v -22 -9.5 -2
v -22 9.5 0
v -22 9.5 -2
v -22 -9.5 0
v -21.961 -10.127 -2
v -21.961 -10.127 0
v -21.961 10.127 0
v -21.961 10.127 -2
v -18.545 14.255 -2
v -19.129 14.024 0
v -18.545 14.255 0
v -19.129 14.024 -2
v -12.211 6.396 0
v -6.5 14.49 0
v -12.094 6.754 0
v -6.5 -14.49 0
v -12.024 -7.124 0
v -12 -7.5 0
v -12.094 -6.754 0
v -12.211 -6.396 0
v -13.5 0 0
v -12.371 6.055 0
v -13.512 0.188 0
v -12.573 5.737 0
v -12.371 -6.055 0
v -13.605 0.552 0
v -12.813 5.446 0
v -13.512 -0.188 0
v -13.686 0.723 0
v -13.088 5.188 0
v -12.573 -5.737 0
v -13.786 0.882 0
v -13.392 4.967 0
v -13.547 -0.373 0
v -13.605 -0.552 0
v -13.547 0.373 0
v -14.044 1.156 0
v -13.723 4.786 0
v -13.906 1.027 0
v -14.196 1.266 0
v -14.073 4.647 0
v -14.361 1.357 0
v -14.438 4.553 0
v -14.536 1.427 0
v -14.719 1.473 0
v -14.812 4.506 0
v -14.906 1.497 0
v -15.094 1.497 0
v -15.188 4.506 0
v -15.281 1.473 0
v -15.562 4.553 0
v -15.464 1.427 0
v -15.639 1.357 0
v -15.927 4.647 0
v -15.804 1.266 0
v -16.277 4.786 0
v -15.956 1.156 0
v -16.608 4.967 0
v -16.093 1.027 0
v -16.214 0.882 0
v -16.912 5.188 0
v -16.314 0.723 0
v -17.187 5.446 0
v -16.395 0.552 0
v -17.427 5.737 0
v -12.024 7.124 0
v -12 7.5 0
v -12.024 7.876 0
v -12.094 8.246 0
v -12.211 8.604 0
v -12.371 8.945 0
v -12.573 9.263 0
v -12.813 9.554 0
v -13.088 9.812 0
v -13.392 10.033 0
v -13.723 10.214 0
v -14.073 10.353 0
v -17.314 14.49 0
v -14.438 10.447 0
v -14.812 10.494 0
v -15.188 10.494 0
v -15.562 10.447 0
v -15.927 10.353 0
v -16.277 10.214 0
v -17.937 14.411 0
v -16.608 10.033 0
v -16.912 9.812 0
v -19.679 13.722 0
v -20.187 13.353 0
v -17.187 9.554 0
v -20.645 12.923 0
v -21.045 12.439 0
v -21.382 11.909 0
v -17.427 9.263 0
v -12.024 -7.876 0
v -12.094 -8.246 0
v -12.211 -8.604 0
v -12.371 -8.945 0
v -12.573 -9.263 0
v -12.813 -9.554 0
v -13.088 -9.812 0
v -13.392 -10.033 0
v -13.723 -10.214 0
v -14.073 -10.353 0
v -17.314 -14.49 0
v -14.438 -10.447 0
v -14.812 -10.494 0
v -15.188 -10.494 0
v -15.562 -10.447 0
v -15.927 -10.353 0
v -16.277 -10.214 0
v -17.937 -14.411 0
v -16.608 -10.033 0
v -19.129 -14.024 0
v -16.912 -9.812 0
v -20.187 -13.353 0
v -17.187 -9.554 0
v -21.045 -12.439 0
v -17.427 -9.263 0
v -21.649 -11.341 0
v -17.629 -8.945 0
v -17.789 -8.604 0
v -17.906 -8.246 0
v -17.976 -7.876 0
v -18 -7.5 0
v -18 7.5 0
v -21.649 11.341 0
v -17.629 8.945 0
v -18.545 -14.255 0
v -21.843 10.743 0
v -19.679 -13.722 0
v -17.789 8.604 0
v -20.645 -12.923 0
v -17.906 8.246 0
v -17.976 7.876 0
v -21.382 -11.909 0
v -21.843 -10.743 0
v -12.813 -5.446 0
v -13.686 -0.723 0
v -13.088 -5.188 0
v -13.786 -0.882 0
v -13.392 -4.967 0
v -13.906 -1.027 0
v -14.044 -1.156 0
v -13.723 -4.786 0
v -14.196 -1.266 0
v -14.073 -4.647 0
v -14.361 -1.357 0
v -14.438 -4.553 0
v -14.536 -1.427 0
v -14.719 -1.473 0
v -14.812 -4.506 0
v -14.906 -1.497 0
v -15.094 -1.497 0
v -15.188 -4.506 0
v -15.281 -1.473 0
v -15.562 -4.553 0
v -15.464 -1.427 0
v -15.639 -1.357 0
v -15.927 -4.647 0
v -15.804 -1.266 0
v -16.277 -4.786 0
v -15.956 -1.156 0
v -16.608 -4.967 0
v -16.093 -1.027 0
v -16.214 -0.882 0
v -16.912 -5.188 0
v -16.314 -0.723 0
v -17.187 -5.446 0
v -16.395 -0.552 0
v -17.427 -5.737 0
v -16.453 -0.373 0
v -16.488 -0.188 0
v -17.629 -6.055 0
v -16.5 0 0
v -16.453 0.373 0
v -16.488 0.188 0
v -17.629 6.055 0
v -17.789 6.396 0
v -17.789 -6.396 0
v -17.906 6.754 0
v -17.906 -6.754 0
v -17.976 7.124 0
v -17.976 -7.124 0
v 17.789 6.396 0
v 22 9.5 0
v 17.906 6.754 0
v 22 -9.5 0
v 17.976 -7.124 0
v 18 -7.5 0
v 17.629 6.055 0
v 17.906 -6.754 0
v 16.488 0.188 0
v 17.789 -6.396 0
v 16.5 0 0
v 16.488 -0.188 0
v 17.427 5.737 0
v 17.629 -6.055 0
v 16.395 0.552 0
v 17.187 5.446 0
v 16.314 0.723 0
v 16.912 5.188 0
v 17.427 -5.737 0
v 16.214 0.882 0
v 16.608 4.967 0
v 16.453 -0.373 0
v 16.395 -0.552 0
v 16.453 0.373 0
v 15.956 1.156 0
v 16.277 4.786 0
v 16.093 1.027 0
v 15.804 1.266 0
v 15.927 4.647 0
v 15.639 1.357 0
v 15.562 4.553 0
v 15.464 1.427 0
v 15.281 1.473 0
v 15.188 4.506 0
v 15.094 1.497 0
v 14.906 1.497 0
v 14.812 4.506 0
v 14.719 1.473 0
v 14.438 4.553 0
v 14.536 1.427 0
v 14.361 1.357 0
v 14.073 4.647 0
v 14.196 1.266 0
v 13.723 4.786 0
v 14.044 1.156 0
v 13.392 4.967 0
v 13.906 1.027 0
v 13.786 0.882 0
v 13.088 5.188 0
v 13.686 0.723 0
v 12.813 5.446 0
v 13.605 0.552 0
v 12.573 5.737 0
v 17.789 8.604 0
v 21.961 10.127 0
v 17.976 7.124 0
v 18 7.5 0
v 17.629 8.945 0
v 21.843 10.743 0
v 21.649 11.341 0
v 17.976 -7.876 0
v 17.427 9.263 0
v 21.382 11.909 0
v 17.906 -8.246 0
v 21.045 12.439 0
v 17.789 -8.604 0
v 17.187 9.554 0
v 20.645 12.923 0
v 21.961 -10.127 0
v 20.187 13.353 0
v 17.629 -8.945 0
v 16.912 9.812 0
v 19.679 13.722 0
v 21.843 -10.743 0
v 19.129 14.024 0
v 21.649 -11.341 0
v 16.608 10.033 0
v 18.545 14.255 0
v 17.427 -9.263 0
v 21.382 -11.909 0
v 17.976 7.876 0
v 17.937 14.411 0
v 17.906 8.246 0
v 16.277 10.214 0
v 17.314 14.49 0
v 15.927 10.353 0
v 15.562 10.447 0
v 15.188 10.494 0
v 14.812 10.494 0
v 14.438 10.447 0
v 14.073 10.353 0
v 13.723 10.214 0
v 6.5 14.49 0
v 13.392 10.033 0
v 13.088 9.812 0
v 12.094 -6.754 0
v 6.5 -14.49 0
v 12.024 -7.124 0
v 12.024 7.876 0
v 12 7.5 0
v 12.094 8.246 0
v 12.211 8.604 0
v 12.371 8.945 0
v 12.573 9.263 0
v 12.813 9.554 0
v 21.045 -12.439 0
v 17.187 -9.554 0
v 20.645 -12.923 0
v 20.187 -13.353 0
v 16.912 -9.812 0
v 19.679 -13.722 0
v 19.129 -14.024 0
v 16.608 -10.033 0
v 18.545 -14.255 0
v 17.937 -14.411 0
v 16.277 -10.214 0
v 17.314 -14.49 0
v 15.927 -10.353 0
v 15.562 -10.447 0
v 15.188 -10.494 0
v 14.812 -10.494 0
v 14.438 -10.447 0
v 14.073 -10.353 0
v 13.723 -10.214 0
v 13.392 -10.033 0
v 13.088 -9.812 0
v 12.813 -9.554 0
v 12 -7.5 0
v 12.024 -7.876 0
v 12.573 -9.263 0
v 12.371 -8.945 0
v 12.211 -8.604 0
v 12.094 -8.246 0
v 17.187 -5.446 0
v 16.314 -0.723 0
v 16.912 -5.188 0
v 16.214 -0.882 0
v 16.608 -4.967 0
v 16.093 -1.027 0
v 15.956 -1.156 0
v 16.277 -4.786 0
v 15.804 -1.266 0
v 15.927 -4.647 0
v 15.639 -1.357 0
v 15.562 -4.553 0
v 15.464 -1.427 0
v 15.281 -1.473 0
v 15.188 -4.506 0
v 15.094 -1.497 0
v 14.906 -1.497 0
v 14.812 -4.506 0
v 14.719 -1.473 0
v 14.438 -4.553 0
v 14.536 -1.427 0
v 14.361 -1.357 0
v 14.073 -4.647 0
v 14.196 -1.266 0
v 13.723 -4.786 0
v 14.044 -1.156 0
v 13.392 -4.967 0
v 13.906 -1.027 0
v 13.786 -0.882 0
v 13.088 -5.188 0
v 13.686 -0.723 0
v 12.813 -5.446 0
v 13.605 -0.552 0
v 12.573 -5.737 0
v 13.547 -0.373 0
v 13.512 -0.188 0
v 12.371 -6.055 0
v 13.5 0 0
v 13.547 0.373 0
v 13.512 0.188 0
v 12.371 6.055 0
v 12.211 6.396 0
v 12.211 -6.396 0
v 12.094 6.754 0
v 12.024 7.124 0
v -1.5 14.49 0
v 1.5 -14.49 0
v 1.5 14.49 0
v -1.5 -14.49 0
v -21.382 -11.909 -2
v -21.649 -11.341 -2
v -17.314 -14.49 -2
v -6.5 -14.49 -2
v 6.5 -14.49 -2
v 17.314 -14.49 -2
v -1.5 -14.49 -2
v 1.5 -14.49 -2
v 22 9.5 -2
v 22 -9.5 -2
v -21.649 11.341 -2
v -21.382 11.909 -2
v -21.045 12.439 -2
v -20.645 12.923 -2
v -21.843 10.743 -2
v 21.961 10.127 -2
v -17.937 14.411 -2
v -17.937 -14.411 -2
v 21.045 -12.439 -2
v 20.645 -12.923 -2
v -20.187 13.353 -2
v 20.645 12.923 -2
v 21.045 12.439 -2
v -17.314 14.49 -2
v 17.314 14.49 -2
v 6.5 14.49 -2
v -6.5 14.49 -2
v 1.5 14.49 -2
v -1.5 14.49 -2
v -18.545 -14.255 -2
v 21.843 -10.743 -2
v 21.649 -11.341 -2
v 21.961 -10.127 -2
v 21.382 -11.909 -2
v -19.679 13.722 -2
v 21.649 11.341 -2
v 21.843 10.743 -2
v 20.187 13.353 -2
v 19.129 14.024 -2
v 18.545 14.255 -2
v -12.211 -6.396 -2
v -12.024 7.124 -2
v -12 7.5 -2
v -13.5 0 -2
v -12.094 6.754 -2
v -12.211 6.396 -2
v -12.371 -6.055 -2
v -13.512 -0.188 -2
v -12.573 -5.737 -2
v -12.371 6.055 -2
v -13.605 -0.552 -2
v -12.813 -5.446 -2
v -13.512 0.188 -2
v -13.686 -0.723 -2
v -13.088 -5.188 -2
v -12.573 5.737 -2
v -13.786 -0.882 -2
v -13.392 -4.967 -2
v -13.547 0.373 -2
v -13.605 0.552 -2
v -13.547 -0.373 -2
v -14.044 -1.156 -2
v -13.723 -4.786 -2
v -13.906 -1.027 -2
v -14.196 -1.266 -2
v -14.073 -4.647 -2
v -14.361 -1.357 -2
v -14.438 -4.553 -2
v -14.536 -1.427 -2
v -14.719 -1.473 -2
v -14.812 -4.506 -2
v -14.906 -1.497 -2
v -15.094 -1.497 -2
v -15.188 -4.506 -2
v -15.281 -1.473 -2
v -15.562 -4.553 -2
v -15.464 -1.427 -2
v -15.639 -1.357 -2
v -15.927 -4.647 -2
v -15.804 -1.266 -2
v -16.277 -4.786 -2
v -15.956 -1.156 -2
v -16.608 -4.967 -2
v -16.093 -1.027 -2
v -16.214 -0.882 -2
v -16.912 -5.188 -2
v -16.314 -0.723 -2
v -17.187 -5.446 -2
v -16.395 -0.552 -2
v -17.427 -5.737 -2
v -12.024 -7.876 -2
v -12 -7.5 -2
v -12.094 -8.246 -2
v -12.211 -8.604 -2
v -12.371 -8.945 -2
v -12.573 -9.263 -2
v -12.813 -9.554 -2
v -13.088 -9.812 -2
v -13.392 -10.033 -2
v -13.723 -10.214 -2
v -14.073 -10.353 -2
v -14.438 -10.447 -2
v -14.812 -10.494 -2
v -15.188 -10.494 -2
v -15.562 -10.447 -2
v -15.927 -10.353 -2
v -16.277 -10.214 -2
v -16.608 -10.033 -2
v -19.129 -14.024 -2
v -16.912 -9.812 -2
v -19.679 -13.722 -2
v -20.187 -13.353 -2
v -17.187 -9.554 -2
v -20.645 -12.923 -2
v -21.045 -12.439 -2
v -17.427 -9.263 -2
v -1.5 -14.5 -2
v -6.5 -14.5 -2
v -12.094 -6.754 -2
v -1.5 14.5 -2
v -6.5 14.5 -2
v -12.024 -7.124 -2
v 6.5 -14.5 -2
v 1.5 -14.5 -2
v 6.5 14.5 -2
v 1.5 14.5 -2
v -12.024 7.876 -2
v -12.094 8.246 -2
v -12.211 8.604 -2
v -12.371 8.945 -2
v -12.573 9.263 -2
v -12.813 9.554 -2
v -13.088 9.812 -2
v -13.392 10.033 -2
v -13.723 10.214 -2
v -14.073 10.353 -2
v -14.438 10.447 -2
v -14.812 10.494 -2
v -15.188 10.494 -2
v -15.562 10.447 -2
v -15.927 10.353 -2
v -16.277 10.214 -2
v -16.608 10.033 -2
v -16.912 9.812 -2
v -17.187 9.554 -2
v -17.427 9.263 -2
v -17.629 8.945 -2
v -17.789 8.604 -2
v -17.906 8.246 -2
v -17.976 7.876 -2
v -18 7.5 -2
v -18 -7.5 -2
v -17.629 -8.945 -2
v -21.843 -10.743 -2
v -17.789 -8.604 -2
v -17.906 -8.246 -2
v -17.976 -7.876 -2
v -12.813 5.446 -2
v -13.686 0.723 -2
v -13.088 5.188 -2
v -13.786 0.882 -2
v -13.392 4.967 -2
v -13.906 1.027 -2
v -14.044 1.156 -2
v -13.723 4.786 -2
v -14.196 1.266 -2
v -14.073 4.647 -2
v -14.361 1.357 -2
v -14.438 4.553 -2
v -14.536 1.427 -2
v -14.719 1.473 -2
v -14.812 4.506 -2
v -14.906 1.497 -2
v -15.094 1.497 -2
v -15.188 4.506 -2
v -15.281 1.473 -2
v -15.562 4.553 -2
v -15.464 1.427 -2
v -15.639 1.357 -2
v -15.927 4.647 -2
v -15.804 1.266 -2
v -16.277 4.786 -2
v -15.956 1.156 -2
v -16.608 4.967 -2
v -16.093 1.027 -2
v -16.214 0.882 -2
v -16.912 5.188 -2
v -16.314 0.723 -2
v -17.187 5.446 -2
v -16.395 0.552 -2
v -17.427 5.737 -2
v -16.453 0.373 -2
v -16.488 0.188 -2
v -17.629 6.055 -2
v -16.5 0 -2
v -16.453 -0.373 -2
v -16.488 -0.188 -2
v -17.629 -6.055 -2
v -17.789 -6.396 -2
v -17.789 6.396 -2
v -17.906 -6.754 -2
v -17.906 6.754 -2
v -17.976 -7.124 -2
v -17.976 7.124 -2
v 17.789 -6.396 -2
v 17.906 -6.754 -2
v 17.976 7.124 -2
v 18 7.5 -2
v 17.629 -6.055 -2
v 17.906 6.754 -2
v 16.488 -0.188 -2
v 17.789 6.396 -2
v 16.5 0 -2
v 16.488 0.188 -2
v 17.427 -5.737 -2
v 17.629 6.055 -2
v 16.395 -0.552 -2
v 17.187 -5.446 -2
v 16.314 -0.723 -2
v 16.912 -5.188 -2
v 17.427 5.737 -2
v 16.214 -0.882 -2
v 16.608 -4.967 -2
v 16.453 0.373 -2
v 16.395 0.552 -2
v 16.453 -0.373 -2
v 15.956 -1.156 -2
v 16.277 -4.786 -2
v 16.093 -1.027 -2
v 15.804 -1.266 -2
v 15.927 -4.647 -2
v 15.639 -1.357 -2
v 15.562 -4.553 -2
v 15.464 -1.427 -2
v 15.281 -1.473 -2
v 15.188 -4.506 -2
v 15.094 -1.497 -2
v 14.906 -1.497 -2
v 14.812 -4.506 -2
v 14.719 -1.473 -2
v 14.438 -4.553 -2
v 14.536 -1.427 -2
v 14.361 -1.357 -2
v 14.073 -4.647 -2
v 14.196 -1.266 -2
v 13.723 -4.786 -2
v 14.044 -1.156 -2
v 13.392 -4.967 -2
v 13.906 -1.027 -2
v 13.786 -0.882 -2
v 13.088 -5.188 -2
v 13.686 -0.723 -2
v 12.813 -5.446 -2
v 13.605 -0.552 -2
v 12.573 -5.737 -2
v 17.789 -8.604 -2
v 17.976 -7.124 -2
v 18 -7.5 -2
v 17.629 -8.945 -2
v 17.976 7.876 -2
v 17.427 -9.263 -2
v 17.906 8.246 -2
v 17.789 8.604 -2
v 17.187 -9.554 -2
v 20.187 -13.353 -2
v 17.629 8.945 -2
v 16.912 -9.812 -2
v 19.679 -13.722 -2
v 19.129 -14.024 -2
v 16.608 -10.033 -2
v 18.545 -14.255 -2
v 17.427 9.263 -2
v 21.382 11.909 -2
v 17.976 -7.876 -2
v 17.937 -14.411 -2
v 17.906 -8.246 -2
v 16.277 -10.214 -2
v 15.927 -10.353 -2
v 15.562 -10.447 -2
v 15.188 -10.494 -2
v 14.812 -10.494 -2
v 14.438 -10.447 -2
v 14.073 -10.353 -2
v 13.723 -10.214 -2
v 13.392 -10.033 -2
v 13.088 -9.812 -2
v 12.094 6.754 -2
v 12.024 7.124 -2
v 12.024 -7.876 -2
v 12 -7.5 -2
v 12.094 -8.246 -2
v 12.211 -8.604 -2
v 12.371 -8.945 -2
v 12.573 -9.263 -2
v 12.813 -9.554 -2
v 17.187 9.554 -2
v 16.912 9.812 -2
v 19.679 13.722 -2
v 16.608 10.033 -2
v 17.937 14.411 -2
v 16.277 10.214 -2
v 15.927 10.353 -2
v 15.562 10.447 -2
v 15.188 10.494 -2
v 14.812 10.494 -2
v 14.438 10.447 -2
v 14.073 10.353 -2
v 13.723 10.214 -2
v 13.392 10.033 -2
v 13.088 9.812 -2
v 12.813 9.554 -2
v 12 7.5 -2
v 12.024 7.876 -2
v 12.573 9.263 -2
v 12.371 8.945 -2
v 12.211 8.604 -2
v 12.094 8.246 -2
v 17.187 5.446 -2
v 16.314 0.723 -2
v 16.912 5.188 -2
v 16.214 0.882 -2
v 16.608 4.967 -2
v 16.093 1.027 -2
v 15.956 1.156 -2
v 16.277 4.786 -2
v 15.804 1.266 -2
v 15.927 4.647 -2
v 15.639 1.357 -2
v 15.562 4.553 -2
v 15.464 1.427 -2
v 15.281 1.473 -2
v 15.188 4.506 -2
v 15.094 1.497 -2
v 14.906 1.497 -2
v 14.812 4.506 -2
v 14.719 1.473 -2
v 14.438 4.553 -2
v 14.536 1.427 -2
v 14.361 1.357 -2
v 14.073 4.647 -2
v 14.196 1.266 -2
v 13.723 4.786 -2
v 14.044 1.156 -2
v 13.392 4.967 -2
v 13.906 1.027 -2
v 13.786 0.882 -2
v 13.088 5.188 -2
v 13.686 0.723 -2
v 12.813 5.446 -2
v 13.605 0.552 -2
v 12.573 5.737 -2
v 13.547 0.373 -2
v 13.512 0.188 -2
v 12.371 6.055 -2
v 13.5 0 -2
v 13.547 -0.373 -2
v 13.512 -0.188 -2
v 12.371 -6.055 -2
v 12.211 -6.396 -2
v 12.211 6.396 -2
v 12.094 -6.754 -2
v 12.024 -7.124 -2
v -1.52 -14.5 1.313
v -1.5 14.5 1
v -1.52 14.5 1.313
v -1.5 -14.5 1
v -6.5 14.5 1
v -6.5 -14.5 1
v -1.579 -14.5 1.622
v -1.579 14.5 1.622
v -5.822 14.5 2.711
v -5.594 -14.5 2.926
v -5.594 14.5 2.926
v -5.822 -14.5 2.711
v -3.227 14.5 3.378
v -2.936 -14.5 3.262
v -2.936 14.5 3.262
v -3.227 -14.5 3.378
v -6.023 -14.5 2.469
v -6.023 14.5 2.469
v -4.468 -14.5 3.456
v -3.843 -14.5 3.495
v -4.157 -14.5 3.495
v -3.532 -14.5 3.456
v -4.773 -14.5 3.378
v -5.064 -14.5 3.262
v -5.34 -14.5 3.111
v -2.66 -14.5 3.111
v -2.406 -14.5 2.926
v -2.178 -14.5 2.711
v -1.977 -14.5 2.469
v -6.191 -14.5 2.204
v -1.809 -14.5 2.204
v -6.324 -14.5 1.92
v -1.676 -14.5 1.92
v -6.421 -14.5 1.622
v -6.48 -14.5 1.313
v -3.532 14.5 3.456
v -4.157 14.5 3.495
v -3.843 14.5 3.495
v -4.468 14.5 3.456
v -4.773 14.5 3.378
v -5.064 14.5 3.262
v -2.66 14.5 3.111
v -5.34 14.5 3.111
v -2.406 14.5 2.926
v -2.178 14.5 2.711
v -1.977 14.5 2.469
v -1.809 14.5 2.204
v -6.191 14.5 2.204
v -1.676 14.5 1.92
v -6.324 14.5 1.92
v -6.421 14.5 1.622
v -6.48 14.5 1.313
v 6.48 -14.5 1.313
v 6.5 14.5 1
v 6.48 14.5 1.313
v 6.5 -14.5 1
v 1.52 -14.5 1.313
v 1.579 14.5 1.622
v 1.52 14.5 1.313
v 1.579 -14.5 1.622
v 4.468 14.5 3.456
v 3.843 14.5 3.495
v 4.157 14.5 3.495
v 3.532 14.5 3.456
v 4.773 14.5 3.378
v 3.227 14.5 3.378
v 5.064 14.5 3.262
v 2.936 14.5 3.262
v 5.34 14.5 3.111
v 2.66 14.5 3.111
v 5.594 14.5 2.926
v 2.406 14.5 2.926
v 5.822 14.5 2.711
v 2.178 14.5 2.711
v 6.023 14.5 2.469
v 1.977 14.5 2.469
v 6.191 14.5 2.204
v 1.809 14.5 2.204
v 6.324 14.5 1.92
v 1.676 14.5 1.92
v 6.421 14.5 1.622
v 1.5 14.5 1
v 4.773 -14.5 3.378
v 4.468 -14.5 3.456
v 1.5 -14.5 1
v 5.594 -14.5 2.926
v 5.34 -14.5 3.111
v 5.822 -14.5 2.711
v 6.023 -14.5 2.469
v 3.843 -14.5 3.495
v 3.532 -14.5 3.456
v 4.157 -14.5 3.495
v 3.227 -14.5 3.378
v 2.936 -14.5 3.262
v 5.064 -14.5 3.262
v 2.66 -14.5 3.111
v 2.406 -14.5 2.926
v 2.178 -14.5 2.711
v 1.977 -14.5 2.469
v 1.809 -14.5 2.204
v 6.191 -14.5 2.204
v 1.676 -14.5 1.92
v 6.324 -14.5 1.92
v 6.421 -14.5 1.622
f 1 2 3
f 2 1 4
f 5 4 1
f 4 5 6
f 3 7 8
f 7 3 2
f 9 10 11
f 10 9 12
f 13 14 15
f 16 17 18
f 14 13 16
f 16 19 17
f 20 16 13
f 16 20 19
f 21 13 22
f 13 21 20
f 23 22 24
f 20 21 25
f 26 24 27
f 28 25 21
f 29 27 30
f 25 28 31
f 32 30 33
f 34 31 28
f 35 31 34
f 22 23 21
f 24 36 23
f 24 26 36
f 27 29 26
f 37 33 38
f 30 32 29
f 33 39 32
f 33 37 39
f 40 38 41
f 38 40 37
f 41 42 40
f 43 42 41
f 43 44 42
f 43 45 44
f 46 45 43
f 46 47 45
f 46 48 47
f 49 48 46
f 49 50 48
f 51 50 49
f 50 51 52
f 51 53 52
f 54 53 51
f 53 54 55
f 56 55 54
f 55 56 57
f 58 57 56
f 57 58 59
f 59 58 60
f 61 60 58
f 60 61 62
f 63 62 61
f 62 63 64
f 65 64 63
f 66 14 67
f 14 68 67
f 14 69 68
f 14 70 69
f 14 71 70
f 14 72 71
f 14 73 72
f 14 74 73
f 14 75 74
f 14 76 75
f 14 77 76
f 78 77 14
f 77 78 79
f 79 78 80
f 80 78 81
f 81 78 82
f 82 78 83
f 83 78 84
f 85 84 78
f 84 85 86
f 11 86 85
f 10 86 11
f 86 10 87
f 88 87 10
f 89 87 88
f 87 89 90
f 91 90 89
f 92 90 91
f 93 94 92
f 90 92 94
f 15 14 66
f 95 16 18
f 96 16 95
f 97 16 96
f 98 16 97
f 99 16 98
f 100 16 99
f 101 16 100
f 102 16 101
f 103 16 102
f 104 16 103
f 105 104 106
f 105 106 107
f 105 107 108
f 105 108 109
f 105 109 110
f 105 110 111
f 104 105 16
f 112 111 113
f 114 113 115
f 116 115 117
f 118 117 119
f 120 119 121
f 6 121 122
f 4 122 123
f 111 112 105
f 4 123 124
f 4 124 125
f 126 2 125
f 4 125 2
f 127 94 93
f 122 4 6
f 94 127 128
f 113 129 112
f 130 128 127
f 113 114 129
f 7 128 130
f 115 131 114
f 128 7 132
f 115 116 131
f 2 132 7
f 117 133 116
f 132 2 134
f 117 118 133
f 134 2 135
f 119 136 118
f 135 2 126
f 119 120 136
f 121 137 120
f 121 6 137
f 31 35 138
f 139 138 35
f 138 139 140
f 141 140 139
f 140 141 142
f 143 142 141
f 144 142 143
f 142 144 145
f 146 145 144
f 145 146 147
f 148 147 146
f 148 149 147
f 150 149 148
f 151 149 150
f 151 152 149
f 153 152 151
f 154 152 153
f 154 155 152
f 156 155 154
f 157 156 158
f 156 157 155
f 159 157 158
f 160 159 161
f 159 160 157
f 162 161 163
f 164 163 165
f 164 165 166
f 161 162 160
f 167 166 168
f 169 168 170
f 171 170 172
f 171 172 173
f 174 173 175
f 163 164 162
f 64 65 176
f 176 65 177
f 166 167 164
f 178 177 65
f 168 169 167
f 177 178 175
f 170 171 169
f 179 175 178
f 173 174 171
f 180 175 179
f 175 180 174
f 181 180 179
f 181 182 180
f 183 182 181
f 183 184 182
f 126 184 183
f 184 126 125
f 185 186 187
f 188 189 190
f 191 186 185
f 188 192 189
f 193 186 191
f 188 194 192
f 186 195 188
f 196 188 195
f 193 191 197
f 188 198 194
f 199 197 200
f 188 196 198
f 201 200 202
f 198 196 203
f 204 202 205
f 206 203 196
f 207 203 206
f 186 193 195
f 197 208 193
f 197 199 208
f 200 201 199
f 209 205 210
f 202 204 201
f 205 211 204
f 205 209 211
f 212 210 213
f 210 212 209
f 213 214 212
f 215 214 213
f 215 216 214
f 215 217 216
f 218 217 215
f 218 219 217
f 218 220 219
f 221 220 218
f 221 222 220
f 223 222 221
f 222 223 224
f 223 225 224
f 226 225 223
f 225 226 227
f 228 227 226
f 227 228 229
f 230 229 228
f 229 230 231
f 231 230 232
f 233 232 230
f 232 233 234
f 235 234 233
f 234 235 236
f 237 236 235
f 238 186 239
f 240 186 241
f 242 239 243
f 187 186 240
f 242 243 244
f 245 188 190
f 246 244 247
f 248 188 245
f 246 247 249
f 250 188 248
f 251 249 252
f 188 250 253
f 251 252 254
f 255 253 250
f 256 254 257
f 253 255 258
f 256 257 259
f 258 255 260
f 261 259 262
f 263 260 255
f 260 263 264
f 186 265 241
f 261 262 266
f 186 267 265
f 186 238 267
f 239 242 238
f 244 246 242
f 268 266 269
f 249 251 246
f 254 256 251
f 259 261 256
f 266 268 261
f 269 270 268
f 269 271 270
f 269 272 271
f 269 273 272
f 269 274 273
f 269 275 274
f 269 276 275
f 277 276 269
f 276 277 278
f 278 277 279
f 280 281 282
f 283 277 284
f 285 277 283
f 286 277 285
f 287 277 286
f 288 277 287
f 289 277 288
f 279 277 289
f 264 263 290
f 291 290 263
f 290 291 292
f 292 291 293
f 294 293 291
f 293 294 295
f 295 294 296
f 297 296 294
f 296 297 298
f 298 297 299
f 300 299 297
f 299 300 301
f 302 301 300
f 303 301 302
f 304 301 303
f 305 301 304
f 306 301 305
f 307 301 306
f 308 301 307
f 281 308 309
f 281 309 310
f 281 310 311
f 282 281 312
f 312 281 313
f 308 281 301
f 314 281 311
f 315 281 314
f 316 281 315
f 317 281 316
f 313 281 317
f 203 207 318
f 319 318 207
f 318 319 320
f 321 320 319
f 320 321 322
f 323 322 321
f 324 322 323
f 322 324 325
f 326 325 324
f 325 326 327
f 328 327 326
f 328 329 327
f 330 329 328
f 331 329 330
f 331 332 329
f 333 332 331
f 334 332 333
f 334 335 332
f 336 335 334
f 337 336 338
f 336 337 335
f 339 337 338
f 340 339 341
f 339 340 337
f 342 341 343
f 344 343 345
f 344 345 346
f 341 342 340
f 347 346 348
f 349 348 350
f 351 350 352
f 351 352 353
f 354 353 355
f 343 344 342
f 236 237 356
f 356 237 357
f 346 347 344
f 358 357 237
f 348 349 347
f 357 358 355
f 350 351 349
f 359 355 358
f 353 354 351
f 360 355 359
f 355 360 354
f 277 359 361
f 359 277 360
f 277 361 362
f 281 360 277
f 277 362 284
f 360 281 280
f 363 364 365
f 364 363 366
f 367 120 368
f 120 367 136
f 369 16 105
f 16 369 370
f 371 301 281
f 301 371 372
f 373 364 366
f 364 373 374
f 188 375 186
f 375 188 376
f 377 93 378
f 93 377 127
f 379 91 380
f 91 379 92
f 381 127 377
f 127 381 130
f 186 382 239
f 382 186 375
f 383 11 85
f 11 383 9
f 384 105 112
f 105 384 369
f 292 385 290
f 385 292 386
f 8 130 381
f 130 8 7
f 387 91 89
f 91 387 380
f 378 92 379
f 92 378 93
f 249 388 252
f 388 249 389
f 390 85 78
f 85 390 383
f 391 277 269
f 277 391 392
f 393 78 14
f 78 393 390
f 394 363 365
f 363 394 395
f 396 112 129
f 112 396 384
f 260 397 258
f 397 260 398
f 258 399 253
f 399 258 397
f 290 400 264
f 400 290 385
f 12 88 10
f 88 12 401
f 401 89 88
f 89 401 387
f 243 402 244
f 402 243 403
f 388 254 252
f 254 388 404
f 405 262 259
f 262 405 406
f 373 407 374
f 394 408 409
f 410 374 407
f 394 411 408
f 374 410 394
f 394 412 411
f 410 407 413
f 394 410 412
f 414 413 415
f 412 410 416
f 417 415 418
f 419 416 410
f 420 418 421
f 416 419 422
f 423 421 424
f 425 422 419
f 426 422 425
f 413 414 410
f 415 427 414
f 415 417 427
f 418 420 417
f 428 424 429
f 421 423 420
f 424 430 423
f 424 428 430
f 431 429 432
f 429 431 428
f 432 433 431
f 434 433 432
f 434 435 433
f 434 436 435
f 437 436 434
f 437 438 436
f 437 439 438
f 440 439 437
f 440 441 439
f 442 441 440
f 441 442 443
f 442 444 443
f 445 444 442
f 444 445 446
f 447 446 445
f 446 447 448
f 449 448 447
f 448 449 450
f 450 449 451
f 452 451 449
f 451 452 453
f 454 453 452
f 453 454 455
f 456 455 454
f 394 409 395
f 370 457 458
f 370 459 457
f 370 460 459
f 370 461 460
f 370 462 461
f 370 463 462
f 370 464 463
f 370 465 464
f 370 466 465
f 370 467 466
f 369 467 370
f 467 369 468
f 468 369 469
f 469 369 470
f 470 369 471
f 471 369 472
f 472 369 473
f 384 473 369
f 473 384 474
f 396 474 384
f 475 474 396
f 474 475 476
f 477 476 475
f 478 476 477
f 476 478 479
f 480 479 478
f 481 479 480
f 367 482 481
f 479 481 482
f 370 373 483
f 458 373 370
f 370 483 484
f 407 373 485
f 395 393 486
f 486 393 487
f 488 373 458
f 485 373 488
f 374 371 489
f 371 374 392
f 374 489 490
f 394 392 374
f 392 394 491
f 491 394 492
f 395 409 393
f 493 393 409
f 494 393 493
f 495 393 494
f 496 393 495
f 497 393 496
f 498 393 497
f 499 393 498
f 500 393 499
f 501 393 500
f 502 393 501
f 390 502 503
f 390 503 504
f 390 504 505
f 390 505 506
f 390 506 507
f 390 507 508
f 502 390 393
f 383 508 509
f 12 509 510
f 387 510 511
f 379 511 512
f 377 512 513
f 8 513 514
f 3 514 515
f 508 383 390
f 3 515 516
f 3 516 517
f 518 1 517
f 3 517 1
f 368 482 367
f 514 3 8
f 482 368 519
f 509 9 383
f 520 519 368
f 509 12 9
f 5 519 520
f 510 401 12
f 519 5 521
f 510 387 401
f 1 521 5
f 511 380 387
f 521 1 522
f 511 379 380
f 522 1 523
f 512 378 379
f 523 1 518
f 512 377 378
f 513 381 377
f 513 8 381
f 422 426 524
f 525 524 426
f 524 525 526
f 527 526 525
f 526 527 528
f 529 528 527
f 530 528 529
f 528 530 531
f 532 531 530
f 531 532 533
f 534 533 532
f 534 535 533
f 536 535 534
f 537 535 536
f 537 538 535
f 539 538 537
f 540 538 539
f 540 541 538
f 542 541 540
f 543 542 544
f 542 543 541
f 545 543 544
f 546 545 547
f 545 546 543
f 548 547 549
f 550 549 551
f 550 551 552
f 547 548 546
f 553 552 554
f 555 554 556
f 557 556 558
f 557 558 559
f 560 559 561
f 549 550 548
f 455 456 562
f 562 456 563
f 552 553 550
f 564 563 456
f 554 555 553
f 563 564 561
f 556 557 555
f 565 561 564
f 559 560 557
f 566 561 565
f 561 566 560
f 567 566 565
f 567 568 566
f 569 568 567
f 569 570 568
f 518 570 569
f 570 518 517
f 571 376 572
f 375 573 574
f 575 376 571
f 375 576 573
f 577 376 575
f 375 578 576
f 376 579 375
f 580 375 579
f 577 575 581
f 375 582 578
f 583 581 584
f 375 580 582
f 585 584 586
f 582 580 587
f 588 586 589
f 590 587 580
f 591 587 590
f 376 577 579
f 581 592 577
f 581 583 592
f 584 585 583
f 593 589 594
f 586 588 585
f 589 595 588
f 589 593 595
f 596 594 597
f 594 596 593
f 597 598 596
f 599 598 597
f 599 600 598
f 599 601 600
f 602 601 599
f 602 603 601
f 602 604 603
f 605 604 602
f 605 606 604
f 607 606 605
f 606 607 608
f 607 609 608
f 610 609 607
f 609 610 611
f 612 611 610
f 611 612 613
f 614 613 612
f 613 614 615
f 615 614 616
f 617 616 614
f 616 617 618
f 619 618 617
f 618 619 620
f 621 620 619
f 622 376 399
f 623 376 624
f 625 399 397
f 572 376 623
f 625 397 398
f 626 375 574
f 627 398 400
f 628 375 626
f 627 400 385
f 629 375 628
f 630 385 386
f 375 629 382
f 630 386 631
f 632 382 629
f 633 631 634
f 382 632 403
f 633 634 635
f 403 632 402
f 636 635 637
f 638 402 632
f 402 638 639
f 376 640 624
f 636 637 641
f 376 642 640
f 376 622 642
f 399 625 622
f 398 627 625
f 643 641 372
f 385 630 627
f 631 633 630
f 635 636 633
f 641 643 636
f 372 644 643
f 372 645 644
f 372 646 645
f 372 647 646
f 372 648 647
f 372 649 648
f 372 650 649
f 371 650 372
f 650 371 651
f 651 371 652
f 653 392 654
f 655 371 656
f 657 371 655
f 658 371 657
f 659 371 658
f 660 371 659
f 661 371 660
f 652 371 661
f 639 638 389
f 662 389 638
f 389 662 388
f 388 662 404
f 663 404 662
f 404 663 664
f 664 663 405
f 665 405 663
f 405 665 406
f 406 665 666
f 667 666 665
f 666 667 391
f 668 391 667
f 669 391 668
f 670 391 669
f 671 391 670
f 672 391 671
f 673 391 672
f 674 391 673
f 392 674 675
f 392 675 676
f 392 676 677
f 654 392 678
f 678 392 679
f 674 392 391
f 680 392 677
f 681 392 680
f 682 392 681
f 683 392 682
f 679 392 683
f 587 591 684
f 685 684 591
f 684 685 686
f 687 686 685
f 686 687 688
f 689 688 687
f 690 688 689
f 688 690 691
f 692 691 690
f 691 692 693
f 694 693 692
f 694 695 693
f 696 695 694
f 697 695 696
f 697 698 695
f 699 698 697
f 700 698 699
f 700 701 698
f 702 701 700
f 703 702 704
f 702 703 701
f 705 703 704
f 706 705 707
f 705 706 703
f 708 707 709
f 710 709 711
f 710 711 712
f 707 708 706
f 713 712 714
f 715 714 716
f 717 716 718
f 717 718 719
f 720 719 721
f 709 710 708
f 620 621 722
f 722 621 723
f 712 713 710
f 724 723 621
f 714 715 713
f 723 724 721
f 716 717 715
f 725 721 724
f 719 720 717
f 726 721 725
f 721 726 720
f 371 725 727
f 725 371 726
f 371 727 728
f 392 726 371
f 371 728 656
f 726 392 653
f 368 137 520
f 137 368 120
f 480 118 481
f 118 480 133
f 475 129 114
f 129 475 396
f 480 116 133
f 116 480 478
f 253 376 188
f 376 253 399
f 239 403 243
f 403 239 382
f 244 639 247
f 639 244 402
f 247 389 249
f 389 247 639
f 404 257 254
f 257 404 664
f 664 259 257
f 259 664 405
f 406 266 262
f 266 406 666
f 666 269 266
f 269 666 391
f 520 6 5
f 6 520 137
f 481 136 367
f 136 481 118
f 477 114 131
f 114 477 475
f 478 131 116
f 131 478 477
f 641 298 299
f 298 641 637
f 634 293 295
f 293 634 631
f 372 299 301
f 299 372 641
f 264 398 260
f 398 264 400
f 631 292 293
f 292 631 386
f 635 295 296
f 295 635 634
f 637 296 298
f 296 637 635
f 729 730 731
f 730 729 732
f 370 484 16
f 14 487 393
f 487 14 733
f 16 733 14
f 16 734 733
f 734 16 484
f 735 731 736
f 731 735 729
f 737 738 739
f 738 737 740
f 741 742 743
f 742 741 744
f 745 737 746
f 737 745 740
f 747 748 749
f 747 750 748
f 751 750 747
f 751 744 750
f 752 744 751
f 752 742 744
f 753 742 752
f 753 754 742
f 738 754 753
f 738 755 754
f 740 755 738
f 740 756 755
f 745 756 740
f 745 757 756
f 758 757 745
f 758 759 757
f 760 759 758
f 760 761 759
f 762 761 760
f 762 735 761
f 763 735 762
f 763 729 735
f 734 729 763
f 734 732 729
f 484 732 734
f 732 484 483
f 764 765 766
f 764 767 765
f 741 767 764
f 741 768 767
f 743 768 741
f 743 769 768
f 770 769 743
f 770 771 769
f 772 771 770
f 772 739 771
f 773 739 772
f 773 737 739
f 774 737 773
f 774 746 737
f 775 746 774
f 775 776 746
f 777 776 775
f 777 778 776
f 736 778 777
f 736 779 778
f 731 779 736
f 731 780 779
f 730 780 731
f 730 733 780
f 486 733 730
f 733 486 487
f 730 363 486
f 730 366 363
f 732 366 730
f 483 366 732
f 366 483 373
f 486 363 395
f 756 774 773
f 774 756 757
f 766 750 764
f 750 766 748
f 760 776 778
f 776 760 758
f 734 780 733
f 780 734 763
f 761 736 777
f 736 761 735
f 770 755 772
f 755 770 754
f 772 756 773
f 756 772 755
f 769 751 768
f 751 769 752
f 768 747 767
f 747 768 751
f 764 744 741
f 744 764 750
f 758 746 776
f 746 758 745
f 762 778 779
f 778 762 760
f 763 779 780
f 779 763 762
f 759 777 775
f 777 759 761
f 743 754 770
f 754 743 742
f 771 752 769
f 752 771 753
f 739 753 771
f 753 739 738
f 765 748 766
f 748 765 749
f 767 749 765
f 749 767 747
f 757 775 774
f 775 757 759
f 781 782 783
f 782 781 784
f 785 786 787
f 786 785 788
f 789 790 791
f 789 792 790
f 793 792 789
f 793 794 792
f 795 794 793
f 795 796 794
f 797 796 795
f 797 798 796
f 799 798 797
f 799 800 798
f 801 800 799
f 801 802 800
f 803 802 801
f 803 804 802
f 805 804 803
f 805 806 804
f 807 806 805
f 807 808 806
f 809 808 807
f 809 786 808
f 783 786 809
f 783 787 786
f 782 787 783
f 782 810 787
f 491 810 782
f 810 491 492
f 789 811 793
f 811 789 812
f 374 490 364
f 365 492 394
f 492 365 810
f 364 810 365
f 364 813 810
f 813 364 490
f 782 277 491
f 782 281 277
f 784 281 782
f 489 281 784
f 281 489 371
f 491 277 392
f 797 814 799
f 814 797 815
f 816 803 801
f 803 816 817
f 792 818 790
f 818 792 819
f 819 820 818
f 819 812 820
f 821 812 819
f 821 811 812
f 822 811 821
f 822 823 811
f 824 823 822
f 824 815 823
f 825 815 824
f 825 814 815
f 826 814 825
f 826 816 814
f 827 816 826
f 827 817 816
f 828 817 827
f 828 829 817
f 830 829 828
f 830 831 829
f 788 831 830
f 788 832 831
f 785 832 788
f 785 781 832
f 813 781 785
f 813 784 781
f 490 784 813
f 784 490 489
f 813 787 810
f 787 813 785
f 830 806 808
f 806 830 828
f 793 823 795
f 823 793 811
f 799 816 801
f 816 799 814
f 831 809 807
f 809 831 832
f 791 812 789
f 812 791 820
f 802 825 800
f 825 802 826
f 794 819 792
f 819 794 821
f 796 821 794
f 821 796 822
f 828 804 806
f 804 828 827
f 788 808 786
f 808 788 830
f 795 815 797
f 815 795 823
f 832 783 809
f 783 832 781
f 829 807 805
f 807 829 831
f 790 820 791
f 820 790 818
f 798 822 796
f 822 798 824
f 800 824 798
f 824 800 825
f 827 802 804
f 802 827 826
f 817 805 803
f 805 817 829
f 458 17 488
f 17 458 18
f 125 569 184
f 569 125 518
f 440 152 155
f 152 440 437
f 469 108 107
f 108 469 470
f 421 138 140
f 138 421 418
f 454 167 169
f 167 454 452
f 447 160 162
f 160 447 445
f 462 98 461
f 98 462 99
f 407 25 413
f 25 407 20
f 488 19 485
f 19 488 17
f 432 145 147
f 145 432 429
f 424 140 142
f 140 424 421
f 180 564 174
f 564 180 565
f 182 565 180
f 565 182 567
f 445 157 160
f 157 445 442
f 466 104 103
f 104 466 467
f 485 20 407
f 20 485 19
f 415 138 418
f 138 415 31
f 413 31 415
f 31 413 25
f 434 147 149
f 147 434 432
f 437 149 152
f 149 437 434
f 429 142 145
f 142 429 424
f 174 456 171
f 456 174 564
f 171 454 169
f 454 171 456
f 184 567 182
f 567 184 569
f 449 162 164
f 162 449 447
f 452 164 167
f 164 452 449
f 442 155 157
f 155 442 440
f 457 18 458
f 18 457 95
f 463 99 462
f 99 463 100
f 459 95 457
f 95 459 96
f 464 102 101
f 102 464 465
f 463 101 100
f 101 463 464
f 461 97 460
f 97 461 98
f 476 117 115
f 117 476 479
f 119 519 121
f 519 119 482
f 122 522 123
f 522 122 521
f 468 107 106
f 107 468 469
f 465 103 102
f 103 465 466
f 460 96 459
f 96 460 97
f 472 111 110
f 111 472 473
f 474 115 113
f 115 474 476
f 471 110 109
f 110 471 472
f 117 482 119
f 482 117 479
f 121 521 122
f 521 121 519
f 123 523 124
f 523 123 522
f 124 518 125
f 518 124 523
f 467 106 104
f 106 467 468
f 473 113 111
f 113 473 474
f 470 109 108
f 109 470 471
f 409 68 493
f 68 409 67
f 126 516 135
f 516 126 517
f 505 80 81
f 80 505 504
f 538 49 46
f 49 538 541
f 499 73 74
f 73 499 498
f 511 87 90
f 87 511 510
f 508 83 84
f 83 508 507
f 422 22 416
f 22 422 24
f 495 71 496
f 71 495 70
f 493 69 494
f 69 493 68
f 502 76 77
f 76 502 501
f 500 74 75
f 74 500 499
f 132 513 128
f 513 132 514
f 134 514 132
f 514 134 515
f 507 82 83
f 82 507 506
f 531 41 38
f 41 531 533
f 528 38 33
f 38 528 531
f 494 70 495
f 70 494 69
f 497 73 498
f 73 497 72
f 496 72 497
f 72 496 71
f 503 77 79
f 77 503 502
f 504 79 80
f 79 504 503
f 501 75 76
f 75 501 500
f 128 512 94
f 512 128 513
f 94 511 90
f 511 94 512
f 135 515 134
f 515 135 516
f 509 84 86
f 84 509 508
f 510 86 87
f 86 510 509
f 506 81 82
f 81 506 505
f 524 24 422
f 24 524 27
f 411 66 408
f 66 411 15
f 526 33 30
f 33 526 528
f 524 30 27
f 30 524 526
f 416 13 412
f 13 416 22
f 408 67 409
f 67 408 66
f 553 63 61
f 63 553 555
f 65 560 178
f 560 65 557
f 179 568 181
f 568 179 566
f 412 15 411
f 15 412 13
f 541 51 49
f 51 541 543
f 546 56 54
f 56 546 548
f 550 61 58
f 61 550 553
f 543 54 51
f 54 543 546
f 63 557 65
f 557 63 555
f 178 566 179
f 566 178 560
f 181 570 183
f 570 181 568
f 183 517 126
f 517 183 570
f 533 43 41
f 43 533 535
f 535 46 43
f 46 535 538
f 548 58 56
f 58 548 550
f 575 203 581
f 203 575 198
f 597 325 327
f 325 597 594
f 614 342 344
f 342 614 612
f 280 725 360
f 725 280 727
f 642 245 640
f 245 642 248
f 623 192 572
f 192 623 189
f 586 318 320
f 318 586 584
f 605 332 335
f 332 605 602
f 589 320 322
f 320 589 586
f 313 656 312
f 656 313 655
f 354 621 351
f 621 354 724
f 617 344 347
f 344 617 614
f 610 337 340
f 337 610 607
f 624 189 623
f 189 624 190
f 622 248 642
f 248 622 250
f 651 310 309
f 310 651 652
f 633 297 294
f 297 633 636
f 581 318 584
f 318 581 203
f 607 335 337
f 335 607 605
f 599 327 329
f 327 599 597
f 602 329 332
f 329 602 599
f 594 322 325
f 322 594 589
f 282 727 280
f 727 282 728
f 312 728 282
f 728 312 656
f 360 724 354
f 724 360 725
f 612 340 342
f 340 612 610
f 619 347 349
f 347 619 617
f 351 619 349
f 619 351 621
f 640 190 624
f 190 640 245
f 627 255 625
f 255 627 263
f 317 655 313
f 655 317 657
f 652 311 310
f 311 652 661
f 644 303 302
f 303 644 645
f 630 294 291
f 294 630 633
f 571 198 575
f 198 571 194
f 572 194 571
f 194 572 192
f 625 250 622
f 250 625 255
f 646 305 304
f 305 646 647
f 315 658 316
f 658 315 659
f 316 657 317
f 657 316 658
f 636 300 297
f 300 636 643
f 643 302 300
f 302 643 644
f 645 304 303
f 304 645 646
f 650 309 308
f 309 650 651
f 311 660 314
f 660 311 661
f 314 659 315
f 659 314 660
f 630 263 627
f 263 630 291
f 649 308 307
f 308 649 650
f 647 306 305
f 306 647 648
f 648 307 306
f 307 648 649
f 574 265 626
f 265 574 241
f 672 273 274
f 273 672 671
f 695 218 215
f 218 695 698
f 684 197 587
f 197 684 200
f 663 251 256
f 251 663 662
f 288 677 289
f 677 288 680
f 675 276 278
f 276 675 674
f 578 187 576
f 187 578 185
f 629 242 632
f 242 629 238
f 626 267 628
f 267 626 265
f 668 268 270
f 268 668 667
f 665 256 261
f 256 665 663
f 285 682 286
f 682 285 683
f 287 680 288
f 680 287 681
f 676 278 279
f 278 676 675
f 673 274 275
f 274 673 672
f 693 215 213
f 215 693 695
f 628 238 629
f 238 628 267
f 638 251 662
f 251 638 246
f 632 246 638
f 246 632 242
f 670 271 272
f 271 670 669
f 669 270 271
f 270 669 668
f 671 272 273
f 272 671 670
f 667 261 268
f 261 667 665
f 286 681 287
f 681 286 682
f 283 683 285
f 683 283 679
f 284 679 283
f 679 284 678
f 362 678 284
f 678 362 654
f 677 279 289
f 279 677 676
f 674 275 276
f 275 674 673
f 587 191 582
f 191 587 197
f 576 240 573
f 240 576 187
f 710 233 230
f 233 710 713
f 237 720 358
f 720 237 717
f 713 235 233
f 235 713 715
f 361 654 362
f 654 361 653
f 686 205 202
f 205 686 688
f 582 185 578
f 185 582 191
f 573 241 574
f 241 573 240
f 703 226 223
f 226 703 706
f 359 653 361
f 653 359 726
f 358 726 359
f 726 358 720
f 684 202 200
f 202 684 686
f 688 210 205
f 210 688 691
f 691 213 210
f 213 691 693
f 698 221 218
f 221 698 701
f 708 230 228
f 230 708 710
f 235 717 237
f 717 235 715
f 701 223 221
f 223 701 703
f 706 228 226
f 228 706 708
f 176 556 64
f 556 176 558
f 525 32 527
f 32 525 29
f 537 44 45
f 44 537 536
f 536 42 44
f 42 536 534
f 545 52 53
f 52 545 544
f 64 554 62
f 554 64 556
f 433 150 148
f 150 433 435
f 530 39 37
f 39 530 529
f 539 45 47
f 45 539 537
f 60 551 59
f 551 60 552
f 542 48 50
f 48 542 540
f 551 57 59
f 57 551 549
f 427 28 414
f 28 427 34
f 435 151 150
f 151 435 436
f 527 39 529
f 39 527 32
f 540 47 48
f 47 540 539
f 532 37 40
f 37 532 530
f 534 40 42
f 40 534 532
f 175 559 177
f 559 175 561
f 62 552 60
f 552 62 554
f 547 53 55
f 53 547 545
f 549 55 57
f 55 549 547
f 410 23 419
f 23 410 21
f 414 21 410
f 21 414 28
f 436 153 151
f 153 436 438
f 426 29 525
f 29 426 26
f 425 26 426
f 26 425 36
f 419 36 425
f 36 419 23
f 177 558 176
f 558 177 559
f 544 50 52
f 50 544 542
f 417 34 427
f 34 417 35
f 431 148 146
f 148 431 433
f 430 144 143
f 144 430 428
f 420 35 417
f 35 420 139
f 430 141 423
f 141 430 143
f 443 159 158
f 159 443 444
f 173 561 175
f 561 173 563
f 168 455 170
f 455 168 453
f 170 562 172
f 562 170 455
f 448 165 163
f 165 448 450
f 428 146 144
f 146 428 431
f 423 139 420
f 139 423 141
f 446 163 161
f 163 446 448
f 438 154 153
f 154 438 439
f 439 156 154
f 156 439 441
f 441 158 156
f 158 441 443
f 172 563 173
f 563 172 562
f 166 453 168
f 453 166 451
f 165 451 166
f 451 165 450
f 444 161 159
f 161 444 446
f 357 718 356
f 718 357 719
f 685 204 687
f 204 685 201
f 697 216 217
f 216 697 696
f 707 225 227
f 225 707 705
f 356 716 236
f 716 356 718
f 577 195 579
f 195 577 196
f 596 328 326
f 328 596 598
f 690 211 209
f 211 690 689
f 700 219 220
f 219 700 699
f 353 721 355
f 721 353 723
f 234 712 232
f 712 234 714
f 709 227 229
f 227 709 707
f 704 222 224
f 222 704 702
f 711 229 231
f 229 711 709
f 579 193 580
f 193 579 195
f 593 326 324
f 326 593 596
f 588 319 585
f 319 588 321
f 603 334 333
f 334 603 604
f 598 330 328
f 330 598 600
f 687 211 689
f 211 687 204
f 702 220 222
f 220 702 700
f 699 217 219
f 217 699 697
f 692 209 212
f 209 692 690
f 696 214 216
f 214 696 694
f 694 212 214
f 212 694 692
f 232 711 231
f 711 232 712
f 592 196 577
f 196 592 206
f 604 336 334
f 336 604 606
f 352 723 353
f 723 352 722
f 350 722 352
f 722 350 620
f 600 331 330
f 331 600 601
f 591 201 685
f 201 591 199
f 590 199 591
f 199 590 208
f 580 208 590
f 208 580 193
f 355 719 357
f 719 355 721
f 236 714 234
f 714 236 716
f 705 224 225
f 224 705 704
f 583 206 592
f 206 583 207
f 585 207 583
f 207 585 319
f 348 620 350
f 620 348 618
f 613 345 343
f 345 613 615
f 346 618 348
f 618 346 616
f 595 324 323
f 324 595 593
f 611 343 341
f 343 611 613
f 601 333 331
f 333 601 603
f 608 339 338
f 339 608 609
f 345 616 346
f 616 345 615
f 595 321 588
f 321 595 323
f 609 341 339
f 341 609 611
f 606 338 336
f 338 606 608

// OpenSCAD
$fn = 50;


difference() {
	union() {
		translate(v = [0, 0, -2]) {
			hull() {
				translate(v = [-17.0000000000, 9.5000000000, 0]) {
					cylinder(h = 2, r = 5);
				}
				translate(v = [17.0000000000, 9.5000000000, 0]) {
					cylinder(h = 2, r = 5);
				}
				translate(v = [-17.0000000000, -9.5000000000, 0]) {
					cylinder(h = 2, r = 5);
				}
				translate(v = [17.0000000000, -9.5000000000, 0]) {
					cylinder(h = 2, r = 5);
				}
			}
		}
		translate(v = [-4.0000000000, 14.5000000000, -1.5000000000]) {
			rotate(a = [90, 0, 0]) {
				hull() {
					translate(v = [-0.0000000000, 2.5000000000, 0]) {
						cylinder(h = 29, r = 2.5000000000);
					}
					translate(v = [0.0000000000, 2.5000000000, 0]) {
						cylinder(h = 29, r = 2.5000000000);
					}
					translate(v = [-0.0000000000, -2.5000000000, 0]) {
						cylinder(h = 29, r = 2.5000000000);
					}
					translate(v = [0.0000000000, -2.5000000000, 0]) {
						cylinder(h = 29, r = 2.5000000000);
					}
				}
			}
		}
		translate(v = [4.0000000000, 14.5000000000, -1.5000000000]) {
			rotate(a = [90, 0, 0]) {
				hull() {
					translate(v = [-0.0000000000, 2.5000000000, 0]) {
						cylinder(h = 29, r = 2.5000000000);
					}
					translate(v = [0.0000000000, 2.5000000000, 0]) {
						cylinder(h = 29, r = 2.5000000000);
					}
					translate(v = [-0.0000000000, -2.5000000000, 0]) {
						cylinder(h = 29, r = 2.5000000000);
					}
					translate(v = [0.0000000000, -2.5000000000, 0]) {
						cylinder(h = 29, r = 2.5000000000);
					}
				}
			}
		}
	}
	union() {
		translate(v = [-250.0000000000, -250.0000000000, -502]) {
			cube(size = [500, 500, 500]);
		}
		translate(v = [-250.0000000000, -250.0000000000, -502]) {
			cube(size = [500, 500, 500]);
		}
		translate(v = [-250.0000000000, -250.0000000000, -502]) {
			cube(size = [500, 500, 500]);
		}
		translate(v = [-15.0000000000, -7.5000000000, -100.0000000000]) {
			cylinder(h = 200, r = 3.0000000000);
		}
		translate(v = [-15.0000000000, 7.5000000000, -100.0000000000]) {
			cylinder(h = 200, r = 3.0000000000);
		}
		translate(v = [15.0000000000, -7.5000000000, -100.0000000000]) {
			cylinder(h = 200, r = 3.0000000000);
		}
		translate(v = [15.0000000000, 7.5000000000, -100.0000000000]) {
			cylinder(h = 200, r = 3.0000000000);
		}
		translate(v = [15.0000000000, -7.5000000000, -100.0000000000]) {
			cylinder(h = 200, r = 3.0000000000);
		}
		translate(v = [15.0000000000, 7.5000000000, -100.0000000000]) {
			cylinder(h = 200, r = 3.0000000000);
		}
		translate(v = [-15.0000000000, -7.5000000000, -100.0000000000]) {
			cylinder(h = 200, r = 1.5000000000);
		}
		translate(v = [-15.0000000000, 0.0000000000, -100.0000000000]) {
			cylinder(h = 200, r = 1.5000000000);
		}
		translate(v = [-15.0000000000, 7.5000000000, -100.0000000000]) {
			cylinder(h = 200, r = 1.5000000000);
		}
		translate(v = [15.0000000000, -7.5000000000, -100.0000000000]) {
			cylinder(h = 200, r = 1.5000000000);
		}
		translate(v = [15.0000000000, 0.0000000000, -100.0000000000]) {
			cylinder(h = 200, r = 1.5000000000);
		}
		translate(v = [15.0000000000, 7.5000000000, -100.0000000000]) {
			cylinder(h = 200, r = 1.5000000000);
		}
		translate(v = [-15.0000000000, -7.5000000000, -100.0000000000]) {
			cylinder(h = 200, r = 1.5000000000);
		}
		translate(v = [-15.0000000000, 0.0000000000, -100.0000000000]) {
			cylinder(h = 200, r = 1.5000000000);
		}
		translate(v = [-15.0000000000, 7.5000000000, -100.0000000000]) {
			cylinder(h = 200, r = 1.5000000000);
		}
		translate(v = [15.0000000000, -7.5000000000, -100.0000000000]) {
			cylinder(h = 200, r = 1.5000000000);
		}
		translate(v = [15.0000000000, 0.0000000000, -100.0000000000]) {
			cylinder(h = 200, r = 1.5000000000);
		}
		translate(v = [15.0000000000, 7.5000000000, -100.0000000000]) {
			cylinder(h = 200, r = 1.5000000000);
		}
		translate(v = [-15.0000000000, -7.5000000000, -100.0000000000]) {
			cylinder(h = 200, r = 1.5000000000);
		}
		translate(v = [-15.0000000000, 0.0000000000, -100.0000000000]) {
			cylinder(h = 200, r = 1.5000000000);
		}
		translate(v = [-15.0000000000, 7.5000000000, -100.0000000000]) {
			cylinder(h = 200, r = 1.5000000000);
		}
		translate(v = [15.0000000000, -7.5000000000, -100.0000000000]) {
			cylinder(h = 200, r = 1.5000000000);
		}
		translate(v = [15.0000000000, 0.0000000000, -100.0000000000]) {
			cylinder(h = 200, r = 1.5000000000);
		}
		translate(v = [15.0000000000, 7.5000000000, -100.0000000000]) {
			cylinder(h = 200, r = 1.5000000000);
		}
	}
}
